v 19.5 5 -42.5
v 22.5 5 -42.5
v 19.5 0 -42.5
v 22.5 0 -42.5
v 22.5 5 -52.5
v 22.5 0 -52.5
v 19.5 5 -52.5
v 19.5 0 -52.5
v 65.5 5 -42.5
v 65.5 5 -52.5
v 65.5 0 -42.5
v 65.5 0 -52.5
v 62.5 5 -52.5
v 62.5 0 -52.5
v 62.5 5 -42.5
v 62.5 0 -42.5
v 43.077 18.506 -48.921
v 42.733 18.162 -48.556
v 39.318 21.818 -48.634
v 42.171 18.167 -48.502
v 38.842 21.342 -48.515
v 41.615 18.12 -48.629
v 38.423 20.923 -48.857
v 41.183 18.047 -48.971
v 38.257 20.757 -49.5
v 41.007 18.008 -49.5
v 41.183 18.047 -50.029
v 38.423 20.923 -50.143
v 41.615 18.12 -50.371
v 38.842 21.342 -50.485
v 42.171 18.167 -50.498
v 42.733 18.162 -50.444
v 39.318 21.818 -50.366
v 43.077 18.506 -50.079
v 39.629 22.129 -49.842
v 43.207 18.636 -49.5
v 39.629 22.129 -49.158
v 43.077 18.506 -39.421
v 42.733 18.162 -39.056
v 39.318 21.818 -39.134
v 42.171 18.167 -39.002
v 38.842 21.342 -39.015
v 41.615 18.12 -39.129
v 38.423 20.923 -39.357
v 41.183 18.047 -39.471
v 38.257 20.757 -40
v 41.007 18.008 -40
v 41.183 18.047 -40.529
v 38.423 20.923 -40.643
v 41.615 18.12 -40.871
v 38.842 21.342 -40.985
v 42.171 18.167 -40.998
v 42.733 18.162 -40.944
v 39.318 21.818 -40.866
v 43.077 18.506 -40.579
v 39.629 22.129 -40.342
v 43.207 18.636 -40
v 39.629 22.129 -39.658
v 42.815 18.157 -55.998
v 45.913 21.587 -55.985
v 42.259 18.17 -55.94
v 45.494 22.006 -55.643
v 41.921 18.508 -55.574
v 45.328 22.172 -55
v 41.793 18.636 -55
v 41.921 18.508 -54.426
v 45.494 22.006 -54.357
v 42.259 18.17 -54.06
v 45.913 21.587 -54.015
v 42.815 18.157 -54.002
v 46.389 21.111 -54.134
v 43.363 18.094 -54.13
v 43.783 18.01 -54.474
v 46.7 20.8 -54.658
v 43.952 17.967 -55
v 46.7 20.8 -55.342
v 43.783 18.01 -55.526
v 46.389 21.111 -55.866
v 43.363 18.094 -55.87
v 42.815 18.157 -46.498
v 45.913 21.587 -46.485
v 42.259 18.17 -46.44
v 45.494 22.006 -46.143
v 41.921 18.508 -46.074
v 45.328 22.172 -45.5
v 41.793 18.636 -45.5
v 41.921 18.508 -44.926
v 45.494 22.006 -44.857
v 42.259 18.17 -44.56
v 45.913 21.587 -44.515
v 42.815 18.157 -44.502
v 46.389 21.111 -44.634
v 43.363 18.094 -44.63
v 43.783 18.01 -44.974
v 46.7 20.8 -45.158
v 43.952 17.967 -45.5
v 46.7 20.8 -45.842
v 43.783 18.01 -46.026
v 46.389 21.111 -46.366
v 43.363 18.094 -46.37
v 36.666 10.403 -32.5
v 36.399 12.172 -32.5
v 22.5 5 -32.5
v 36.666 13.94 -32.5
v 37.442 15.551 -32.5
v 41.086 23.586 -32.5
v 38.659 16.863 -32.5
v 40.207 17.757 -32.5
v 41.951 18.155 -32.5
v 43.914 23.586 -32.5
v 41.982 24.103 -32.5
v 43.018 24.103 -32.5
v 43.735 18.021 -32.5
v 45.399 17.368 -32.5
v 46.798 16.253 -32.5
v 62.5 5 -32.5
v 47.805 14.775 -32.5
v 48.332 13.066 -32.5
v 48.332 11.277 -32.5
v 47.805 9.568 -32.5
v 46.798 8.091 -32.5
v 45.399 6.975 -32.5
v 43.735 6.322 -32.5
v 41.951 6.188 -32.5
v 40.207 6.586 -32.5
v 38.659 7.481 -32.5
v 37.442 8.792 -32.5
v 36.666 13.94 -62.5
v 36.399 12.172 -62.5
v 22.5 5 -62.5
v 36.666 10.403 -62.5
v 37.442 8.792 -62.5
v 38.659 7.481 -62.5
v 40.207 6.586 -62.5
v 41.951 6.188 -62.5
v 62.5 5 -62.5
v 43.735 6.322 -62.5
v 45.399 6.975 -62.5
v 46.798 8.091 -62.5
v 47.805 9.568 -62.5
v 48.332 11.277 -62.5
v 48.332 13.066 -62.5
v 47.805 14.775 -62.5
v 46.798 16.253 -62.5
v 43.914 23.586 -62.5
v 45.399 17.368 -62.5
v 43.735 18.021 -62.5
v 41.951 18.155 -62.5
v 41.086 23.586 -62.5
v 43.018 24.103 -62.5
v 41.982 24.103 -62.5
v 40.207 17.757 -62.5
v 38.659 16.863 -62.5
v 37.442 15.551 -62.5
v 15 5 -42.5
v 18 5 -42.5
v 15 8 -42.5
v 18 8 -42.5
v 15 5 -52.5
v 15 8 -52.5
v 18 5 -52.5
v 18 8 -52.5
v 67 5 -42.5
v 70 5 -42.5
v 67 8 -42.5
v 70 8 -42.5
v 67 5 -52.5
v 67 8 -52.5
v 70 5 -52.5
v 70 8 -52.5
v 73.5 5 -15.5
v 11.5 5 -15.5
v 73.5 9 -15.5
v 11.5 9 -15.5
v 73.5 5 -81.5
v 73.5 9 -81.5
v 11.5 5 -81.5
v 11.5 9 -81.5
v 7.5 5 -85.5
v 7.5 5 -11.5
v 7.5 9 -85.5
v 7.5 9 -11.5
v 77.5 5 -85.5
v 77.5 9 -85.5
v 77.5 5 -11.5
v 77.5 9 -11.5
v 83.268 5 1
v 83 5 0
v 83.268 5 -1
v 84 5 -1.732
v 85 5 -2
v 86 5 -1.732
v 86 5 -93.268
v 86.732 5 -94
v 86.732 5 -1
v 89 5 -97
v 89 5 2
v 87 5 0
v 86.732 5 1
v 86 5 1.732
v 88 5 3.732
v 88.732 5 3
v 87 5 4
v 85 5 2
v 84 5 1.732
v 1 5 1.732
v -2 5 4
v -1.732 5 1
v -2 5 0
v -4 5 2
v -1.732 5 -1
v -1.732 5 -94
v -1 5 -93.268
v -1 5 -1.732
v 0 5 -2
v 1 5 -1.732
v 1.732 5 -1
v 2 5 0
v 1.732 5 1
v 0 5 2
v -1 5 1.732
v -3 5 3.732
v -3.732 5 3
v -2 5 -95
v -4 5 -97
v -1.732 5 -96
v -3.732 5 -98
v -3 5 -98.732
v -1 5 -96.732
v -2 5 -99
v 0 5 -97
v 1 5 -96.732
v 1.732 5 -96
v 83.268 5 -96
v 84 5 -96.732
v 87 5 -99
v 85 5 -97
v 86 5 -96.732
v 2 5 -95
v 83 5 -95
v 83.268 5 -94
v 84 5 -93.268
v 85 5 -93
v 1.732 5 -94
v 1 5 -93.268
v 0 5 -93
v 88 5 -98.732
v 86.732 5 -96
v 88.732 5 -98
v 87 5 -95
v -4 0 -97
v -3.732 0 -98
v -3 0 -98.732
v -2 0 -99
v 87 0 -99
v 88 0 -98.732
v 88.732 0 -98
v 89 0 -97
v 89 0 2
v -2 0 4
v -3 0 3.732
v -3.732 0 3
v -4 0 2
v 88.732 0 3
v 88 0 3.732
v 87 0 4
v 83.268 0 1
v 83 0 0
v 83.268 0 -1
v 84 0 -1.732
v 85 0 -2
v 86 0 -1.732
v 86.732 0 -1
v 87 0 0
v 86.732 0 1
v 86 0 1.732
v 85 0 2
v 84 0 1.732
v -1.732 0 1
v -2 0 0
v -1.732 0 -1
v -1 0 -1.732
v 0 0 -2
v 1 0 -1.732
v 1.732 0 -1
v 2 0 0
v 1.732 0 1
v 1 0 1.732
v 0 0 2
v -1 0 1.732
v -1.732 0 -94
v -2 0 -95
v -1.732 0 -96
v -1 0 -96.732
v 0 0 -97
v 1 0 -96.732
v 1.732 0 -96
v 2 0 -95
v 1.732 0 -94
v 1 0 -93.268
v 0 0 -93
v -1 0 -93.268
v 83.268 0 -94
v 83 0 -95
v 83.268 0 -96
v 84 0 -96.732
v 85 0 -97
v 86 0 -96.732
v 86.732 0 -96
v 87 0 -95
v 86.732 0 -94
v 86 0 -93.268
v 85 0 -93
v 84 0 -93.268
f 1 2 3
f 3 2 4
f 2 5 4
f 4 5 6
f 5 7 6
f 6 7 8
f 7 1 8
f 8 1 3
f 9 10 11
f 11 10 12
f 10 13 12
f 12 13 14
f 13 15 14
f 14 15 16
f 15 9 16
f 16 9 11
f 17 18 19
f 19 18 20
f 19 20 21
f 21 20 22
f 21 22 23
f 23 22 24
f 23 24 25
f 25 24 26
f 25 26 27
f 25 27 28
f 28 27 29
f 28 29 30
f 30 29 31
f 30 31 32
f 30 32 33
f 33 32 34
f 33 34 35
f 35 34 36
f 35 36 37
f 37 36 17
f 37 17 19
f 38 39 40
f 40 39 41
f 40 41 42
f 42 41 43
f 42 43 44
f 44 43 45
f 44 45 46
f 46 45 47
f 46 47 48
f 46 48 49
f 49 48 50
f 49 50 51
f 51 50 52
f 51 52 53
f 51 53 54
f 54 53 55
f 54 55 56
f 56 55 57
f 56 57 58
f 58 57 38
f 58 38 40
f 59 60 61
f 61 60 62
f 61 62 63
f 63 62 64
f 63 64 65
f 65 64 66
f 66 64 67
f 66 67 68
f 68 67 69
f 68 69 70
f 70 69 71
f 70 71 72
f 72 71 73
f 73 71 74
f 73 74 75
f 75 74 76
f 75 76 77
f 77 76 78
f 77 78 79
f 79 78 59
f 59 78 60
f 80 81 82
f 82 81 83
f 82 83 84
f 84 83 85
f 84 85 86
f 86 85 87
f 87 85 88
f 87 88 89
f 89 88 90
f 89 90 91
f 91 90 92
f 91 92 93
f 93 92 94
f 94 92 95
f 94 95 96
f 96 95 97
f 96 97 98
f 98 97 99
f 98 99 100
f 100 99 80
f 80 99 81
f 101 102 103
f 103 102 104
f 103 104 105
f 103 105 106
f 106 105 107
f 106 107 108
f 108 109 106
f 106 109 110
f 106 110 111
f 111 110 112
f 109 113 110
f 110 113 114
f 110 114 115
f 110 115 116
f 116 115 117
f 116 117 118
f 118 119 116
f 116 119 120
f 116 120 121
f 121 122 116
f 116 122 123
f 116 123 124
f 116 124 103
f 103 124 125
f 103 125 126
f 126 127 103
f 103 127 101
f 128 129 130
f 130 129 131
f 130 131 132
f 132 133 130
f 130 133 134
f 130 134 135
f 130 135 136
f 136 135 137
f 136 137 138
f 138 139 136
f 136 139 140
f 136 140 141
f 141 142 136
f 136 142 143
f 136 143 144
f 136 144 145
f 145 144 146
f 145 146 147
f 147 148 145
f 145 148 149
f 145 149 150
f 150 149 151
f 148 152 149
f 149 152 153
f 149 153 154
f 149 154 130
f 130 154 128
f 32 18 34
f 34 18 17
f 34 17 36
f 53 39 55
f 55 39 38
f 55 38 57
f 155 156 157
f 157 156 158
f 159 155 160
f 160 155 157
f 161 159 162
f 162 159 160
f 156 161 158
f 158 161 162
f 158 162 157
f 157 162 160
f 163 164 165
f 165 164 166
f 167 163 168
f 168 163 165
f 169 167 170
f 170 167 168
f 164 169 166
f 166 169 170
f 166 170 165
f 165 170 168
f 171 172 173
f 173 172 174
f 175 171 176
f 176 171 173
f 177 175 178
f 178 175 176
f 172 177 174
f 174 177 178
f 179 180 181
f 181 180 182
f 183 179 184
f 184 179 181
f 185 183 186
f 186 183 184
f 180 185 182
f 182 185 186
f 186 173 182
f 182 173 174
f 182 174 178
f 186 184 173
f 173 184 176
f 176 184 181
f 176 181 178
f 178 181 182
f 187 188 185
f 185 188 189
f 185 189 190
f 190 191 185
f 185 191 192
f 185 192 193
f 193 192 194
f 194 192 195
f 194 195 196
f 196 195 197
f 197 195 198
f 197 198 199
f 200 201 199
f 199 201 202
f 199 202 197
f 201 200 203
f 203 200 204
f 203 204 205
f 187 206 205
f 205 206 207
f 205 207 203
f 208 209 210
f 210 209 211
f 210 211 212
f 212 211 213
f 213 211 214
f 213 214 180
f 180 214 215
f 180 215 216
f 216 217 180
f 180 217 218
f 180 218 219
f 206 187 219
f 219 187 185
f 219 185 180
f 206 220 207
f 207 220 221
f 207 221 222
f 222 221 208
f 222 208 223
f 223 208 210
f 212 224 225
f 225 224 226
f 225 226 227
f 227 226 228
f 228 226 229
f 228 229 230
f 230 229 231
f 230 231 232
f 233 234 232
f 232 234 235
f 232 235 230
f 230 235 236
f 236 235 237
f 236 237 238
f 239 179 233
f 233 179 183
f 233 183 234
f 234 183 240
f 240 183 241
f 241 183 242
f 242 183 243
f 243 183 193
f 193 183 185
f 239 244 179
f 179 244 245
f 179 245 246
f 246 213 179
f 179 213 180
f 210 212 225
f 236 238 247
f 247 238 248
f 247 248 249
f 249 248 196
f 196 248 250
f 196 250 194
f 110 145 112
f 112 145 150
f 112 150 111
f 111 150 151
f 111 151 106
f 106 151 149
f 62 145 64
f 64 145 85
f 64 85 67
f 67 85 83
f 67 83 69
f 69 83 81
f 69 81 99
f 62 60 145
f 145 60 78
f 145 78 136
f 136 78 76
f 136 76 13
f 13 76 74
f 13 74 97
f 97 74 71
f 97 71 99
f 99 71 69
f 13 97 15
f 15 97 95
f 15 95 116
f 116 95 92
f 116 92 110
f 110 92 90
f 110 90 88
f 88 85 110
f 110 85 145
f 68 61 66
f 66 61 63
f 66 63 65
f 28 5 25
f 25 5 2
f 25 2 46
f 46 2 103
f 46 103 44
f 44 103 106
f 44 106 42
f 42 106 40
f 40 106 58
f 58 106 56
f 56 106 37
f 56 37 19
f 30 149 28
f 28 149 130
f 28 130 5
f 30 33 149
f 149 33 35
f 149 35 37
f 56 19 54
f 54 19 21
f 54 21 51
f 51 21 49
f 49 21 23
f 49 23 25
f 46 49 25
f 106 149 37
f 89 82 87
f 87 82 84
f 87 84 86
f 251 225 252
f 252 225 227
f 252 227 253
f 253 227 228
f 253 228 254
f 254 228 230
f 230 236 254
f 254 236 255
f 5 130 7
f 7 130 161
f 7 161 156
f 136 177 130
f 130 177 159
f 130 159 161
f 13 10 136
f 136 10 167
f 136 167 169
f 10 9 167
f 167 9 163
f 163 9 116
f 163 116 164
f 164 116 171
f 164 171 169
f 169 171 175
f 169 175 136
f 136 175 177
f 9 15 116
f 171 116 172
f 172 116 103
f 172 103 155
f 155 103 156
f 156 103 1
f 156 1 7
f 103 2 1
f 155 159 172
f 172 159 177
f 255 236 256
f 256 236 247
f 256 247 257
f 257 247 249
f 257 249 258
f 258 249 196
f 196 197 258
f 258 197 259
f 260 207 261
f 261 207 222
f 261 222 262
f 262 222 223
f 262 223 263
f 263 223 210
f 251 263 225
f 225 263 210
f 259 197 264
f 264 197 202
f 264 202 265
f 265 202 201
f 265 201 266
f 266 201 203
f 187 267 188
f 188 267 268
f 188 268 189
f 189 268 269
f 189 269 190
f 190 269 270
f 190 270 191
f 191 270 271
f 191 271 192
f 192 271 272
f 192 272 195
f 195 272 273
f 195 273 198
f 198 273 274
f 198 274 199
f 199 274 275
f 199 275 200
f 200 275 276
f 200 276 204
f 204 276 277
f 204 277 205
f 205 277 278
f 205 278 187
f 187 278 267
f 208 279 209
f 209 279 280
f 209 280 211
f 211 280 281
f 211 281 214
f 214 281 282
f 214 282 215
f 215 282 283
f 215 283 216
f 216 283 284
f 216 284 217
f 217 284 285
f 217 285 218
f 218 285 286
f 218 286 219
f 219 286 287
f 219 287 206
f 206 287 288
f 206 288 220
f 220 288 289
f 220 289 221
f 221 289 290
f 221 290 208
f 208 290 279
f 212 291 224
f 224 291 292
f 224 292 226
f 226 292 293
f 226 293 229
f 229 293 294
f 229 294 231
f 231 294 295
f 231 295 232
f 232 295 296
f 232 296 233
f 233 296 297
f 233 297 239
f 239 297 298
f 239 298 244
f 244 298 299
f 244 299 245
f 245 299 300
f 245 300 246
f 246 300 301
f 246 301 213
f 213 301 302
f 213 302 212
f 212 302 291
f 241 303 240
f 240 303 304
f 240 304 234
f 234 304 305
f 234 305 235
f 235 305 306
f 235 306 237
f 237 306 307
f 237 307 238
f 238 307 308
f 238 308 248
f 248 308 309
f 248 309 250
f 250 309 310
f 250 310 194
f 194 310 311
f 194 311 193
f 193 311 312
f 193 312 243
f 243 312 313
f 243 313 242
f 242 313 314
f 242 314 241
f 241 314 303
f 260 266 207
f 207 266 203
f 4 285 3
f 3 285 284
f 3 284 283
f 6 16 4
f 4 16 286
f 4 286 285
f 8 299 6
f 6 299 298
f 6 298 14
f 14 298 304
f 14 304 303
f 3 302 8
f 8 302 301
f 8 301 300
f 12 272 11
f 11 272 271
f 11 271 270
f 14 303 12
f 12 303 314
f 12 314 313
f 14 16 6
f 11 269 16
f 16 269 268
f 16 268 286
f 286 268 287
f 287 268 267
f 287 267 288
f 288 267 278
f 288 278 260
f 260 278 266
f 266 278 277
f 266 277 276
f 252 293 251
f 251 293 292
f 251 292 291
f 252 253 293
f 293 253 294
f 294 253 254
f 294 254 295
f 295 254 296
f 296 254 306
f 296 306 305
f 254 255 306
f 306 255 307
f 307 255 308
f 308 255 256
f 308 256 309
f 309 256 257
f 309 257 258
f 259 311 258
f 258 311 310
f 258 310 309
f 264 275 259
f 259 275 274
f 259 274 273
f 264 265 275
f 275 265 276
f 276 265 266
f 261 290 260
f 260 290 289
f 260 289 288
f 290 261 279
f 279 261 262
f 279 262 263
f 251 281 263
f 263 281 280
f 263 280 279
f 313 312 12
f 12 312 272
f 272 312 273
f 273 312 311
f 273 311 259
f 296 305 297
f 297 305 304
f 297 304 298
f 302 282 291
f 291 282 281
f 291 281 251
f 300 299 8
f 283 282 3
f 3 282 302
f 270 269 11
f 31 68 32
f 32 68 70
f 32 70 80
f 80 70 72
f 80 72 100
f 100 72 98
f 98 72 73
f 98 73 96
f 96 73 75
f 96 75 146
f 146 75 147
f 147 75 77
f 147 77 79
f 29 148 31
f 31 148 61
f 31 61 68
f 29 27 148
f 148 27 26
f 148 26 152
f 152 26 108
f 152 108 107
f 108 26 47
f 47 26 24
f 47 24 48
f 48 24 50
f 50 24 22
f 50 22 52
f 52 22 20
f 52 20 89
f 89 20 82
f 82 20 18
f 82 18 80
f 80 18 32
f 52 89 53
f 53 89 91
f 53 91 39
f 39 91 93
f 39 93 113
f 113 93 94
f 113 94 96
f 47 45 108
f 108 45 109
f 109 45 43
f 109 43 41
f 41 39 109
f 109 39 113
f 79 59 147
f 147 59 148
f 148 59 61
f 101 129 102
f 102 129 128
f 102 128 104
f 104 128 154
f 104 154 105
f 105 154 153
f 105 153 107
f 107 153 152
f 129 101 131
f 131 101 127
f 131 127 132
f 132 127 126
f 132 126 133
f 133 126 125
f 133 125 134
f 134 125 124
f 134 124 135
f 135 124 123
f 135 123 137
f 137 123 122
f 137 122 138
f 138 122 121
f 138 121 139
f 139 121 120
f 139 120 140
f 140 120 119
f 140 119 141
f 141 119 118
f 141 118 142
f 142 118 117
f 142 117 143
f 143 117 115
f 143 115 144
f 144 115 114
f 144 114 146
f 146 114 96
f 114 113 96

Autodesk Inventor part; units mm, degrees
ref_plane "YZ Plane" through (0, 0, 0) normal (1, 0, 0) x (0, 1, 0)
ref_plane "XZ Plane" through (0, 0, 0) normal (0, 1, 0) x (-1, 0, 0)
ref_plane "XY Plane" through (0, 0, 0) normal (0, 0, 1) x (1, 0, 0)
sketch "Náčrt1" plane through (0, 0, 0) normal (0, 1, 0) x (-1, 0, 0)
  line L0 (0, 0) -> (-85, 0)
  line L1 (-85, 0) -> (-85, -95)
  line L2 (-85, -95) -> (0, -95)
  line L3 (0, -95) -> (0, 0)
  line L4 (4, 4) -> (-89, 4)
  line L5 (-89, 4) -> (-89, -99)
  line L6 (-89, -99) -> (4, -99)
  line L7 (4, -99) -> (4, 4)
  circle A0 centre (0, 0) radius 2
  circle A1 centre (0, -95) radius 2
  circle A2 centre (-85, -95) radius 2
  circle A3 centre (-85, 0) radius 2
  dimension "d0" = 4
  dimension "d1" = 4
  dimension "d2" = 4
  dimension "d3" = 4
  dimension "d4" = 85
  dimension "d5" = 95
  dimension "d6" = 4
  dimension "d7" = 4
  dimension "d8" = 4
  dimension "d9" = 4
  dimension "d10" = 4
  dimension "d11" = 4
extrude "Vysunutí1" add sketch "Náčrt1" along normal blind 5 contours L0 A0 L3 A1 L2 A2 L1 A3 | L7 L6 L5 L4
extrude "Vysunutí2" cut sketch "Náčrt1" along normal blind 5 contours A3 L1 L0 | L0 L1 A3 | A0 L3 L0 | L0 L3 A0 | A2 L2 L1 | L1 L2 A2 | A1 L2 L3 | L3 L2 A1
fillet "Zaoblení1" radius 2 4 edges at (89, 2.5, 4) (-4, 2.5, 4) (89, 2.5, -99) (-4, 2.5, -99)
sketch "Náčrt2" plane through (0, 5, 0) normal (0, 1, 0) x (1, 0, 0)
  point P0 (0, 0)
ref_plane "Pracovní rovina1" through (87, 0, -47.5) normal (0, 0, -1) x (-1, 0, 0)
sketch "Náčrt3" plane through (87, 0, -47.5) normal (0, 0, -1) x (-1, 0, 0)
  line L0 (89, 5) -> (0, 5) projected
  line L1 (24.5, 5) -> (64.5, 5)
  line L2 (64.5, 5) -> (44.5, 25)
  line L3 (44.5, 25) -> (24.5, 5)
  line L4 (24.5, 5) -> (64.5, 5)
  line L5 (91, 0) -> (91, 5) projected
  point P0 (87, 0)
  dimension "d22" = 90
  dimension "d26" = 45
  dimension "d27" = 20
  dimension "d28" = 46.5
extrude "Vysunutí3" add sketch "Náčrt3" along normal mid plane 30
fillet "Zaoblení2" radius 2 1 edges at (42.5, 25, -47.5)
sketch "Náčrt4" plane through (0, 5, 0) normal (0, 1, 0) x (1, 0, 0)
  line L0 (11.5, 15.5) -> (73.5, 15.5)
  line L1 (73.5, 15.5) -> (73.5, 81.5)
  line L2 (73.5, 81.5) -> (11.5, 81.5)
  line L3 (11.5, 81.5) -> (11.5, 15.5)
  line L4 (7.5, 11.5) -> (77.5, 11.5)
  line L5 (77.5, 11.5) -> (77.5, 85.5)
  line L6 (77.5, 85.5) -> (7.5, 85.5)
  line L7 (7.5, 85.5) -> (7.5, 11.5)
  line L8 (-22.6, 47.5) -> (107.6, 47.5) projected
  line L9 (-4, 97) -> (-4, -2) projected
  line L10 (89, -2) -> (89, 97) projected
  point P0 (0, 0)
  dimension "d32" = 62
  dimension "d33" = 66
  dimension "d34" = 4
  dimension "d35" = 4
  dimension "d36" = 4
  dimension "d37" = 4
  dimension "d38" = 34
  dimension "d39" = 11.5
  dimension "d40" = 11.5
extrude "Vysunutí4" add sketch "Náčrt4" along normal blind 4 contours L0 L1 L8 L5 L4 L7 L3 | L8 L7 L6 L5 L1 L2 L3
sketch "Náčrt5" plane through (0, 5, 0) normal (0, 1, 0) x (1, 0, 0)
  line L0 (67, 42.5) -> (70, 42.5)
  line L1 (70, 42.5) -> (70, 52.5)
  line L2 (70, 52.5) -> (67, 52.5)
  line L3 (67, 52.5) -> (67, 42.5)
  line L4 (73.5, 81.5) -> (73.5, 15.5) projected
  line L5 (-22.6, 47.5) -> (107.6, 47.5) projected
  line L6 (15, 42.5) -> (18, 42.5)
  line L7 (18, 42.5) -> (18, 52.5)
  line L8 (18, 52.5) -> (15, 52.5)
  line L9 (15, 52.5) -> (15, 42.5)
  line L10 (11.5, 15.5) -> (11.5, 81.5) projected
  point P0 (0, 0)
  dimension "d43" = 3.5
  dimension "d44" = 3
  dimension "d45" = 10
  dimension "d46" = 5
  dimension "d47" = 5
  dimension "d48" = 10
  dimension "d49" = 3
  dimension "d50" = 3.5
extrude "Vysunutí5" add sketch "Náčrt5" along normal blind 3
sketch "Náčrt6" plane through (62.5, 5, -62.5) normal (0.7071, 0.7071, 0) x (-0.7071, 0.7071, 0)
  circle A0 centre (23.2843, 17) radius 1
  circle A1 centre (23.2843, 7.5) radius 1
  line L0 (26.2843, 0) -> (0, 0) projected
  line L1 (26.2843, 30) -> (26.2843, 0) projected
  point P0 (40.6586, 62.5)
  dimension "d53" = 9.5
  dimension "d54" = 2
  dimension "d55" = 2
  dimension "d56" = 7.5
  dimension "d57" = 3
  dimension "d58" = 3
sketch "Náčrt7" plane through (22.5, 5, -62.5) normal (-0.7071, 0.7071, 0) x (-0.7071, -0.7071, 0)
  circle A0 centre (-23.2843, 13) radius 1
  circle A1 centre (-23.2843, 22.5) radius 1
  line L0 (-26.2843, 0) -> (-26.2843, 30) projected
  line L1 (-26.2843, 30) -> (0, 30) projected
  point P0 (19.4454, 62.5)
  dimension "d59" = 2
  dimension "d60" = 2
  dimension "d61" = 9.5
  dimension "d62" = 3
  dimension "d63" = 3
  dimension "d64" = 7.5
extrude "Vysunutí6" cut sketch "Náčrt6" against normal blind 5
extrude "Vysunutí7" cut sketch "Náčrt7" against normal blind 5
sketch "Náčrt8" plane through (0, 5, 0) normal (0, 1, 0) x (1, 0, 0)
  line L0 (62.5, 62.5) -> (62.5, 32.5) projected
  line L1 (62.5, 42.5) -> (65.5, 42.5)
  line L2 (65.5, 42.5) -> (65.5, 52.5)
  line L3 (65.5, 52.5) -> (62.5, 52.5)
  line L4 (62.5, 52.5) -> (62.5, 42.5)
  line L5 (70, 52.5) -> (67, 52.5) projected
  line L6 (67, 42.5) -> (70, 42.5) projected
  line L7 (-22.6, 47.5) -> (107.6, 47.5) projected
  line L8 (22.5, 32.5) -> (22.5, 62.5) projected
  line L9 (22.5, 42.5) -> (19.5, 42.5)
  line L10 (19.5, 42.5) -> (19.5, 52.5)
  line L11 (19.5, 52.5) -> (22.5, 52.5)
  line L12 (22.5, 52.5) -> (22.5, 42.5)
  line L13 (15, 42.5) -> (18, 42.5) projected
  point P0 (0, 0)
  dimension "d69" = 10
  dimension "d70" = 5
  dimension "d73" = 5
  dimension "d74" = 10
extrude "Vysunutí8" cut sketch "Náčrt8" against normal blind 5 contours L3 L2 L7 L0 | L7 L2 L1 L0
extrude "Vysunutí9" cut sketch "Náčrt8" against normal blind 5 contours L8 L9 L10 L7 | L7 L10 L11 L8
sketch "Náčrt9" plane through (87, 0, -62.5) normal (0, 0, -1) x (-1, 0, 0)
  circle A0 centre (44.6005, 12.1716) radius 6
  arc A1 (45.9142, 23.5858) -> (43.0858, 23.5858) centre (44.5, 22.1716) ccw projected
  line L0 (64.5, 5) -> (45.9142, 23.5858) projected
  line L1 (43.0858, 23.5858) -> (24.5, 5) projected
  point P0 (87, 0)
  dimension "d77" = 12
  dimension "d78" = 10
  dimension "d79" = 9
  dimension "d80" = 9.1421
extrude "Vysunutí10" cut sketch "Náčrt9" against normal blind 30
equation "\"d1\" = d0"
equation "\"d2\" = d0"
equation "\"d3\" = d0"
equation "\"d9\" = d7"
equation "\"d10\" = d7"
equation "\"d11\" = d7"
equation "\"d35\" = d34"
equation "\"d36\" = d34"
equation "\"d37\" = d34"
equation "\"d55\" = d54"
equation "\"d58\" = d57"
equation "\"d60\" = d59"
equation "\"d63\" = d62"
properties part number "Senzor-vikos"
